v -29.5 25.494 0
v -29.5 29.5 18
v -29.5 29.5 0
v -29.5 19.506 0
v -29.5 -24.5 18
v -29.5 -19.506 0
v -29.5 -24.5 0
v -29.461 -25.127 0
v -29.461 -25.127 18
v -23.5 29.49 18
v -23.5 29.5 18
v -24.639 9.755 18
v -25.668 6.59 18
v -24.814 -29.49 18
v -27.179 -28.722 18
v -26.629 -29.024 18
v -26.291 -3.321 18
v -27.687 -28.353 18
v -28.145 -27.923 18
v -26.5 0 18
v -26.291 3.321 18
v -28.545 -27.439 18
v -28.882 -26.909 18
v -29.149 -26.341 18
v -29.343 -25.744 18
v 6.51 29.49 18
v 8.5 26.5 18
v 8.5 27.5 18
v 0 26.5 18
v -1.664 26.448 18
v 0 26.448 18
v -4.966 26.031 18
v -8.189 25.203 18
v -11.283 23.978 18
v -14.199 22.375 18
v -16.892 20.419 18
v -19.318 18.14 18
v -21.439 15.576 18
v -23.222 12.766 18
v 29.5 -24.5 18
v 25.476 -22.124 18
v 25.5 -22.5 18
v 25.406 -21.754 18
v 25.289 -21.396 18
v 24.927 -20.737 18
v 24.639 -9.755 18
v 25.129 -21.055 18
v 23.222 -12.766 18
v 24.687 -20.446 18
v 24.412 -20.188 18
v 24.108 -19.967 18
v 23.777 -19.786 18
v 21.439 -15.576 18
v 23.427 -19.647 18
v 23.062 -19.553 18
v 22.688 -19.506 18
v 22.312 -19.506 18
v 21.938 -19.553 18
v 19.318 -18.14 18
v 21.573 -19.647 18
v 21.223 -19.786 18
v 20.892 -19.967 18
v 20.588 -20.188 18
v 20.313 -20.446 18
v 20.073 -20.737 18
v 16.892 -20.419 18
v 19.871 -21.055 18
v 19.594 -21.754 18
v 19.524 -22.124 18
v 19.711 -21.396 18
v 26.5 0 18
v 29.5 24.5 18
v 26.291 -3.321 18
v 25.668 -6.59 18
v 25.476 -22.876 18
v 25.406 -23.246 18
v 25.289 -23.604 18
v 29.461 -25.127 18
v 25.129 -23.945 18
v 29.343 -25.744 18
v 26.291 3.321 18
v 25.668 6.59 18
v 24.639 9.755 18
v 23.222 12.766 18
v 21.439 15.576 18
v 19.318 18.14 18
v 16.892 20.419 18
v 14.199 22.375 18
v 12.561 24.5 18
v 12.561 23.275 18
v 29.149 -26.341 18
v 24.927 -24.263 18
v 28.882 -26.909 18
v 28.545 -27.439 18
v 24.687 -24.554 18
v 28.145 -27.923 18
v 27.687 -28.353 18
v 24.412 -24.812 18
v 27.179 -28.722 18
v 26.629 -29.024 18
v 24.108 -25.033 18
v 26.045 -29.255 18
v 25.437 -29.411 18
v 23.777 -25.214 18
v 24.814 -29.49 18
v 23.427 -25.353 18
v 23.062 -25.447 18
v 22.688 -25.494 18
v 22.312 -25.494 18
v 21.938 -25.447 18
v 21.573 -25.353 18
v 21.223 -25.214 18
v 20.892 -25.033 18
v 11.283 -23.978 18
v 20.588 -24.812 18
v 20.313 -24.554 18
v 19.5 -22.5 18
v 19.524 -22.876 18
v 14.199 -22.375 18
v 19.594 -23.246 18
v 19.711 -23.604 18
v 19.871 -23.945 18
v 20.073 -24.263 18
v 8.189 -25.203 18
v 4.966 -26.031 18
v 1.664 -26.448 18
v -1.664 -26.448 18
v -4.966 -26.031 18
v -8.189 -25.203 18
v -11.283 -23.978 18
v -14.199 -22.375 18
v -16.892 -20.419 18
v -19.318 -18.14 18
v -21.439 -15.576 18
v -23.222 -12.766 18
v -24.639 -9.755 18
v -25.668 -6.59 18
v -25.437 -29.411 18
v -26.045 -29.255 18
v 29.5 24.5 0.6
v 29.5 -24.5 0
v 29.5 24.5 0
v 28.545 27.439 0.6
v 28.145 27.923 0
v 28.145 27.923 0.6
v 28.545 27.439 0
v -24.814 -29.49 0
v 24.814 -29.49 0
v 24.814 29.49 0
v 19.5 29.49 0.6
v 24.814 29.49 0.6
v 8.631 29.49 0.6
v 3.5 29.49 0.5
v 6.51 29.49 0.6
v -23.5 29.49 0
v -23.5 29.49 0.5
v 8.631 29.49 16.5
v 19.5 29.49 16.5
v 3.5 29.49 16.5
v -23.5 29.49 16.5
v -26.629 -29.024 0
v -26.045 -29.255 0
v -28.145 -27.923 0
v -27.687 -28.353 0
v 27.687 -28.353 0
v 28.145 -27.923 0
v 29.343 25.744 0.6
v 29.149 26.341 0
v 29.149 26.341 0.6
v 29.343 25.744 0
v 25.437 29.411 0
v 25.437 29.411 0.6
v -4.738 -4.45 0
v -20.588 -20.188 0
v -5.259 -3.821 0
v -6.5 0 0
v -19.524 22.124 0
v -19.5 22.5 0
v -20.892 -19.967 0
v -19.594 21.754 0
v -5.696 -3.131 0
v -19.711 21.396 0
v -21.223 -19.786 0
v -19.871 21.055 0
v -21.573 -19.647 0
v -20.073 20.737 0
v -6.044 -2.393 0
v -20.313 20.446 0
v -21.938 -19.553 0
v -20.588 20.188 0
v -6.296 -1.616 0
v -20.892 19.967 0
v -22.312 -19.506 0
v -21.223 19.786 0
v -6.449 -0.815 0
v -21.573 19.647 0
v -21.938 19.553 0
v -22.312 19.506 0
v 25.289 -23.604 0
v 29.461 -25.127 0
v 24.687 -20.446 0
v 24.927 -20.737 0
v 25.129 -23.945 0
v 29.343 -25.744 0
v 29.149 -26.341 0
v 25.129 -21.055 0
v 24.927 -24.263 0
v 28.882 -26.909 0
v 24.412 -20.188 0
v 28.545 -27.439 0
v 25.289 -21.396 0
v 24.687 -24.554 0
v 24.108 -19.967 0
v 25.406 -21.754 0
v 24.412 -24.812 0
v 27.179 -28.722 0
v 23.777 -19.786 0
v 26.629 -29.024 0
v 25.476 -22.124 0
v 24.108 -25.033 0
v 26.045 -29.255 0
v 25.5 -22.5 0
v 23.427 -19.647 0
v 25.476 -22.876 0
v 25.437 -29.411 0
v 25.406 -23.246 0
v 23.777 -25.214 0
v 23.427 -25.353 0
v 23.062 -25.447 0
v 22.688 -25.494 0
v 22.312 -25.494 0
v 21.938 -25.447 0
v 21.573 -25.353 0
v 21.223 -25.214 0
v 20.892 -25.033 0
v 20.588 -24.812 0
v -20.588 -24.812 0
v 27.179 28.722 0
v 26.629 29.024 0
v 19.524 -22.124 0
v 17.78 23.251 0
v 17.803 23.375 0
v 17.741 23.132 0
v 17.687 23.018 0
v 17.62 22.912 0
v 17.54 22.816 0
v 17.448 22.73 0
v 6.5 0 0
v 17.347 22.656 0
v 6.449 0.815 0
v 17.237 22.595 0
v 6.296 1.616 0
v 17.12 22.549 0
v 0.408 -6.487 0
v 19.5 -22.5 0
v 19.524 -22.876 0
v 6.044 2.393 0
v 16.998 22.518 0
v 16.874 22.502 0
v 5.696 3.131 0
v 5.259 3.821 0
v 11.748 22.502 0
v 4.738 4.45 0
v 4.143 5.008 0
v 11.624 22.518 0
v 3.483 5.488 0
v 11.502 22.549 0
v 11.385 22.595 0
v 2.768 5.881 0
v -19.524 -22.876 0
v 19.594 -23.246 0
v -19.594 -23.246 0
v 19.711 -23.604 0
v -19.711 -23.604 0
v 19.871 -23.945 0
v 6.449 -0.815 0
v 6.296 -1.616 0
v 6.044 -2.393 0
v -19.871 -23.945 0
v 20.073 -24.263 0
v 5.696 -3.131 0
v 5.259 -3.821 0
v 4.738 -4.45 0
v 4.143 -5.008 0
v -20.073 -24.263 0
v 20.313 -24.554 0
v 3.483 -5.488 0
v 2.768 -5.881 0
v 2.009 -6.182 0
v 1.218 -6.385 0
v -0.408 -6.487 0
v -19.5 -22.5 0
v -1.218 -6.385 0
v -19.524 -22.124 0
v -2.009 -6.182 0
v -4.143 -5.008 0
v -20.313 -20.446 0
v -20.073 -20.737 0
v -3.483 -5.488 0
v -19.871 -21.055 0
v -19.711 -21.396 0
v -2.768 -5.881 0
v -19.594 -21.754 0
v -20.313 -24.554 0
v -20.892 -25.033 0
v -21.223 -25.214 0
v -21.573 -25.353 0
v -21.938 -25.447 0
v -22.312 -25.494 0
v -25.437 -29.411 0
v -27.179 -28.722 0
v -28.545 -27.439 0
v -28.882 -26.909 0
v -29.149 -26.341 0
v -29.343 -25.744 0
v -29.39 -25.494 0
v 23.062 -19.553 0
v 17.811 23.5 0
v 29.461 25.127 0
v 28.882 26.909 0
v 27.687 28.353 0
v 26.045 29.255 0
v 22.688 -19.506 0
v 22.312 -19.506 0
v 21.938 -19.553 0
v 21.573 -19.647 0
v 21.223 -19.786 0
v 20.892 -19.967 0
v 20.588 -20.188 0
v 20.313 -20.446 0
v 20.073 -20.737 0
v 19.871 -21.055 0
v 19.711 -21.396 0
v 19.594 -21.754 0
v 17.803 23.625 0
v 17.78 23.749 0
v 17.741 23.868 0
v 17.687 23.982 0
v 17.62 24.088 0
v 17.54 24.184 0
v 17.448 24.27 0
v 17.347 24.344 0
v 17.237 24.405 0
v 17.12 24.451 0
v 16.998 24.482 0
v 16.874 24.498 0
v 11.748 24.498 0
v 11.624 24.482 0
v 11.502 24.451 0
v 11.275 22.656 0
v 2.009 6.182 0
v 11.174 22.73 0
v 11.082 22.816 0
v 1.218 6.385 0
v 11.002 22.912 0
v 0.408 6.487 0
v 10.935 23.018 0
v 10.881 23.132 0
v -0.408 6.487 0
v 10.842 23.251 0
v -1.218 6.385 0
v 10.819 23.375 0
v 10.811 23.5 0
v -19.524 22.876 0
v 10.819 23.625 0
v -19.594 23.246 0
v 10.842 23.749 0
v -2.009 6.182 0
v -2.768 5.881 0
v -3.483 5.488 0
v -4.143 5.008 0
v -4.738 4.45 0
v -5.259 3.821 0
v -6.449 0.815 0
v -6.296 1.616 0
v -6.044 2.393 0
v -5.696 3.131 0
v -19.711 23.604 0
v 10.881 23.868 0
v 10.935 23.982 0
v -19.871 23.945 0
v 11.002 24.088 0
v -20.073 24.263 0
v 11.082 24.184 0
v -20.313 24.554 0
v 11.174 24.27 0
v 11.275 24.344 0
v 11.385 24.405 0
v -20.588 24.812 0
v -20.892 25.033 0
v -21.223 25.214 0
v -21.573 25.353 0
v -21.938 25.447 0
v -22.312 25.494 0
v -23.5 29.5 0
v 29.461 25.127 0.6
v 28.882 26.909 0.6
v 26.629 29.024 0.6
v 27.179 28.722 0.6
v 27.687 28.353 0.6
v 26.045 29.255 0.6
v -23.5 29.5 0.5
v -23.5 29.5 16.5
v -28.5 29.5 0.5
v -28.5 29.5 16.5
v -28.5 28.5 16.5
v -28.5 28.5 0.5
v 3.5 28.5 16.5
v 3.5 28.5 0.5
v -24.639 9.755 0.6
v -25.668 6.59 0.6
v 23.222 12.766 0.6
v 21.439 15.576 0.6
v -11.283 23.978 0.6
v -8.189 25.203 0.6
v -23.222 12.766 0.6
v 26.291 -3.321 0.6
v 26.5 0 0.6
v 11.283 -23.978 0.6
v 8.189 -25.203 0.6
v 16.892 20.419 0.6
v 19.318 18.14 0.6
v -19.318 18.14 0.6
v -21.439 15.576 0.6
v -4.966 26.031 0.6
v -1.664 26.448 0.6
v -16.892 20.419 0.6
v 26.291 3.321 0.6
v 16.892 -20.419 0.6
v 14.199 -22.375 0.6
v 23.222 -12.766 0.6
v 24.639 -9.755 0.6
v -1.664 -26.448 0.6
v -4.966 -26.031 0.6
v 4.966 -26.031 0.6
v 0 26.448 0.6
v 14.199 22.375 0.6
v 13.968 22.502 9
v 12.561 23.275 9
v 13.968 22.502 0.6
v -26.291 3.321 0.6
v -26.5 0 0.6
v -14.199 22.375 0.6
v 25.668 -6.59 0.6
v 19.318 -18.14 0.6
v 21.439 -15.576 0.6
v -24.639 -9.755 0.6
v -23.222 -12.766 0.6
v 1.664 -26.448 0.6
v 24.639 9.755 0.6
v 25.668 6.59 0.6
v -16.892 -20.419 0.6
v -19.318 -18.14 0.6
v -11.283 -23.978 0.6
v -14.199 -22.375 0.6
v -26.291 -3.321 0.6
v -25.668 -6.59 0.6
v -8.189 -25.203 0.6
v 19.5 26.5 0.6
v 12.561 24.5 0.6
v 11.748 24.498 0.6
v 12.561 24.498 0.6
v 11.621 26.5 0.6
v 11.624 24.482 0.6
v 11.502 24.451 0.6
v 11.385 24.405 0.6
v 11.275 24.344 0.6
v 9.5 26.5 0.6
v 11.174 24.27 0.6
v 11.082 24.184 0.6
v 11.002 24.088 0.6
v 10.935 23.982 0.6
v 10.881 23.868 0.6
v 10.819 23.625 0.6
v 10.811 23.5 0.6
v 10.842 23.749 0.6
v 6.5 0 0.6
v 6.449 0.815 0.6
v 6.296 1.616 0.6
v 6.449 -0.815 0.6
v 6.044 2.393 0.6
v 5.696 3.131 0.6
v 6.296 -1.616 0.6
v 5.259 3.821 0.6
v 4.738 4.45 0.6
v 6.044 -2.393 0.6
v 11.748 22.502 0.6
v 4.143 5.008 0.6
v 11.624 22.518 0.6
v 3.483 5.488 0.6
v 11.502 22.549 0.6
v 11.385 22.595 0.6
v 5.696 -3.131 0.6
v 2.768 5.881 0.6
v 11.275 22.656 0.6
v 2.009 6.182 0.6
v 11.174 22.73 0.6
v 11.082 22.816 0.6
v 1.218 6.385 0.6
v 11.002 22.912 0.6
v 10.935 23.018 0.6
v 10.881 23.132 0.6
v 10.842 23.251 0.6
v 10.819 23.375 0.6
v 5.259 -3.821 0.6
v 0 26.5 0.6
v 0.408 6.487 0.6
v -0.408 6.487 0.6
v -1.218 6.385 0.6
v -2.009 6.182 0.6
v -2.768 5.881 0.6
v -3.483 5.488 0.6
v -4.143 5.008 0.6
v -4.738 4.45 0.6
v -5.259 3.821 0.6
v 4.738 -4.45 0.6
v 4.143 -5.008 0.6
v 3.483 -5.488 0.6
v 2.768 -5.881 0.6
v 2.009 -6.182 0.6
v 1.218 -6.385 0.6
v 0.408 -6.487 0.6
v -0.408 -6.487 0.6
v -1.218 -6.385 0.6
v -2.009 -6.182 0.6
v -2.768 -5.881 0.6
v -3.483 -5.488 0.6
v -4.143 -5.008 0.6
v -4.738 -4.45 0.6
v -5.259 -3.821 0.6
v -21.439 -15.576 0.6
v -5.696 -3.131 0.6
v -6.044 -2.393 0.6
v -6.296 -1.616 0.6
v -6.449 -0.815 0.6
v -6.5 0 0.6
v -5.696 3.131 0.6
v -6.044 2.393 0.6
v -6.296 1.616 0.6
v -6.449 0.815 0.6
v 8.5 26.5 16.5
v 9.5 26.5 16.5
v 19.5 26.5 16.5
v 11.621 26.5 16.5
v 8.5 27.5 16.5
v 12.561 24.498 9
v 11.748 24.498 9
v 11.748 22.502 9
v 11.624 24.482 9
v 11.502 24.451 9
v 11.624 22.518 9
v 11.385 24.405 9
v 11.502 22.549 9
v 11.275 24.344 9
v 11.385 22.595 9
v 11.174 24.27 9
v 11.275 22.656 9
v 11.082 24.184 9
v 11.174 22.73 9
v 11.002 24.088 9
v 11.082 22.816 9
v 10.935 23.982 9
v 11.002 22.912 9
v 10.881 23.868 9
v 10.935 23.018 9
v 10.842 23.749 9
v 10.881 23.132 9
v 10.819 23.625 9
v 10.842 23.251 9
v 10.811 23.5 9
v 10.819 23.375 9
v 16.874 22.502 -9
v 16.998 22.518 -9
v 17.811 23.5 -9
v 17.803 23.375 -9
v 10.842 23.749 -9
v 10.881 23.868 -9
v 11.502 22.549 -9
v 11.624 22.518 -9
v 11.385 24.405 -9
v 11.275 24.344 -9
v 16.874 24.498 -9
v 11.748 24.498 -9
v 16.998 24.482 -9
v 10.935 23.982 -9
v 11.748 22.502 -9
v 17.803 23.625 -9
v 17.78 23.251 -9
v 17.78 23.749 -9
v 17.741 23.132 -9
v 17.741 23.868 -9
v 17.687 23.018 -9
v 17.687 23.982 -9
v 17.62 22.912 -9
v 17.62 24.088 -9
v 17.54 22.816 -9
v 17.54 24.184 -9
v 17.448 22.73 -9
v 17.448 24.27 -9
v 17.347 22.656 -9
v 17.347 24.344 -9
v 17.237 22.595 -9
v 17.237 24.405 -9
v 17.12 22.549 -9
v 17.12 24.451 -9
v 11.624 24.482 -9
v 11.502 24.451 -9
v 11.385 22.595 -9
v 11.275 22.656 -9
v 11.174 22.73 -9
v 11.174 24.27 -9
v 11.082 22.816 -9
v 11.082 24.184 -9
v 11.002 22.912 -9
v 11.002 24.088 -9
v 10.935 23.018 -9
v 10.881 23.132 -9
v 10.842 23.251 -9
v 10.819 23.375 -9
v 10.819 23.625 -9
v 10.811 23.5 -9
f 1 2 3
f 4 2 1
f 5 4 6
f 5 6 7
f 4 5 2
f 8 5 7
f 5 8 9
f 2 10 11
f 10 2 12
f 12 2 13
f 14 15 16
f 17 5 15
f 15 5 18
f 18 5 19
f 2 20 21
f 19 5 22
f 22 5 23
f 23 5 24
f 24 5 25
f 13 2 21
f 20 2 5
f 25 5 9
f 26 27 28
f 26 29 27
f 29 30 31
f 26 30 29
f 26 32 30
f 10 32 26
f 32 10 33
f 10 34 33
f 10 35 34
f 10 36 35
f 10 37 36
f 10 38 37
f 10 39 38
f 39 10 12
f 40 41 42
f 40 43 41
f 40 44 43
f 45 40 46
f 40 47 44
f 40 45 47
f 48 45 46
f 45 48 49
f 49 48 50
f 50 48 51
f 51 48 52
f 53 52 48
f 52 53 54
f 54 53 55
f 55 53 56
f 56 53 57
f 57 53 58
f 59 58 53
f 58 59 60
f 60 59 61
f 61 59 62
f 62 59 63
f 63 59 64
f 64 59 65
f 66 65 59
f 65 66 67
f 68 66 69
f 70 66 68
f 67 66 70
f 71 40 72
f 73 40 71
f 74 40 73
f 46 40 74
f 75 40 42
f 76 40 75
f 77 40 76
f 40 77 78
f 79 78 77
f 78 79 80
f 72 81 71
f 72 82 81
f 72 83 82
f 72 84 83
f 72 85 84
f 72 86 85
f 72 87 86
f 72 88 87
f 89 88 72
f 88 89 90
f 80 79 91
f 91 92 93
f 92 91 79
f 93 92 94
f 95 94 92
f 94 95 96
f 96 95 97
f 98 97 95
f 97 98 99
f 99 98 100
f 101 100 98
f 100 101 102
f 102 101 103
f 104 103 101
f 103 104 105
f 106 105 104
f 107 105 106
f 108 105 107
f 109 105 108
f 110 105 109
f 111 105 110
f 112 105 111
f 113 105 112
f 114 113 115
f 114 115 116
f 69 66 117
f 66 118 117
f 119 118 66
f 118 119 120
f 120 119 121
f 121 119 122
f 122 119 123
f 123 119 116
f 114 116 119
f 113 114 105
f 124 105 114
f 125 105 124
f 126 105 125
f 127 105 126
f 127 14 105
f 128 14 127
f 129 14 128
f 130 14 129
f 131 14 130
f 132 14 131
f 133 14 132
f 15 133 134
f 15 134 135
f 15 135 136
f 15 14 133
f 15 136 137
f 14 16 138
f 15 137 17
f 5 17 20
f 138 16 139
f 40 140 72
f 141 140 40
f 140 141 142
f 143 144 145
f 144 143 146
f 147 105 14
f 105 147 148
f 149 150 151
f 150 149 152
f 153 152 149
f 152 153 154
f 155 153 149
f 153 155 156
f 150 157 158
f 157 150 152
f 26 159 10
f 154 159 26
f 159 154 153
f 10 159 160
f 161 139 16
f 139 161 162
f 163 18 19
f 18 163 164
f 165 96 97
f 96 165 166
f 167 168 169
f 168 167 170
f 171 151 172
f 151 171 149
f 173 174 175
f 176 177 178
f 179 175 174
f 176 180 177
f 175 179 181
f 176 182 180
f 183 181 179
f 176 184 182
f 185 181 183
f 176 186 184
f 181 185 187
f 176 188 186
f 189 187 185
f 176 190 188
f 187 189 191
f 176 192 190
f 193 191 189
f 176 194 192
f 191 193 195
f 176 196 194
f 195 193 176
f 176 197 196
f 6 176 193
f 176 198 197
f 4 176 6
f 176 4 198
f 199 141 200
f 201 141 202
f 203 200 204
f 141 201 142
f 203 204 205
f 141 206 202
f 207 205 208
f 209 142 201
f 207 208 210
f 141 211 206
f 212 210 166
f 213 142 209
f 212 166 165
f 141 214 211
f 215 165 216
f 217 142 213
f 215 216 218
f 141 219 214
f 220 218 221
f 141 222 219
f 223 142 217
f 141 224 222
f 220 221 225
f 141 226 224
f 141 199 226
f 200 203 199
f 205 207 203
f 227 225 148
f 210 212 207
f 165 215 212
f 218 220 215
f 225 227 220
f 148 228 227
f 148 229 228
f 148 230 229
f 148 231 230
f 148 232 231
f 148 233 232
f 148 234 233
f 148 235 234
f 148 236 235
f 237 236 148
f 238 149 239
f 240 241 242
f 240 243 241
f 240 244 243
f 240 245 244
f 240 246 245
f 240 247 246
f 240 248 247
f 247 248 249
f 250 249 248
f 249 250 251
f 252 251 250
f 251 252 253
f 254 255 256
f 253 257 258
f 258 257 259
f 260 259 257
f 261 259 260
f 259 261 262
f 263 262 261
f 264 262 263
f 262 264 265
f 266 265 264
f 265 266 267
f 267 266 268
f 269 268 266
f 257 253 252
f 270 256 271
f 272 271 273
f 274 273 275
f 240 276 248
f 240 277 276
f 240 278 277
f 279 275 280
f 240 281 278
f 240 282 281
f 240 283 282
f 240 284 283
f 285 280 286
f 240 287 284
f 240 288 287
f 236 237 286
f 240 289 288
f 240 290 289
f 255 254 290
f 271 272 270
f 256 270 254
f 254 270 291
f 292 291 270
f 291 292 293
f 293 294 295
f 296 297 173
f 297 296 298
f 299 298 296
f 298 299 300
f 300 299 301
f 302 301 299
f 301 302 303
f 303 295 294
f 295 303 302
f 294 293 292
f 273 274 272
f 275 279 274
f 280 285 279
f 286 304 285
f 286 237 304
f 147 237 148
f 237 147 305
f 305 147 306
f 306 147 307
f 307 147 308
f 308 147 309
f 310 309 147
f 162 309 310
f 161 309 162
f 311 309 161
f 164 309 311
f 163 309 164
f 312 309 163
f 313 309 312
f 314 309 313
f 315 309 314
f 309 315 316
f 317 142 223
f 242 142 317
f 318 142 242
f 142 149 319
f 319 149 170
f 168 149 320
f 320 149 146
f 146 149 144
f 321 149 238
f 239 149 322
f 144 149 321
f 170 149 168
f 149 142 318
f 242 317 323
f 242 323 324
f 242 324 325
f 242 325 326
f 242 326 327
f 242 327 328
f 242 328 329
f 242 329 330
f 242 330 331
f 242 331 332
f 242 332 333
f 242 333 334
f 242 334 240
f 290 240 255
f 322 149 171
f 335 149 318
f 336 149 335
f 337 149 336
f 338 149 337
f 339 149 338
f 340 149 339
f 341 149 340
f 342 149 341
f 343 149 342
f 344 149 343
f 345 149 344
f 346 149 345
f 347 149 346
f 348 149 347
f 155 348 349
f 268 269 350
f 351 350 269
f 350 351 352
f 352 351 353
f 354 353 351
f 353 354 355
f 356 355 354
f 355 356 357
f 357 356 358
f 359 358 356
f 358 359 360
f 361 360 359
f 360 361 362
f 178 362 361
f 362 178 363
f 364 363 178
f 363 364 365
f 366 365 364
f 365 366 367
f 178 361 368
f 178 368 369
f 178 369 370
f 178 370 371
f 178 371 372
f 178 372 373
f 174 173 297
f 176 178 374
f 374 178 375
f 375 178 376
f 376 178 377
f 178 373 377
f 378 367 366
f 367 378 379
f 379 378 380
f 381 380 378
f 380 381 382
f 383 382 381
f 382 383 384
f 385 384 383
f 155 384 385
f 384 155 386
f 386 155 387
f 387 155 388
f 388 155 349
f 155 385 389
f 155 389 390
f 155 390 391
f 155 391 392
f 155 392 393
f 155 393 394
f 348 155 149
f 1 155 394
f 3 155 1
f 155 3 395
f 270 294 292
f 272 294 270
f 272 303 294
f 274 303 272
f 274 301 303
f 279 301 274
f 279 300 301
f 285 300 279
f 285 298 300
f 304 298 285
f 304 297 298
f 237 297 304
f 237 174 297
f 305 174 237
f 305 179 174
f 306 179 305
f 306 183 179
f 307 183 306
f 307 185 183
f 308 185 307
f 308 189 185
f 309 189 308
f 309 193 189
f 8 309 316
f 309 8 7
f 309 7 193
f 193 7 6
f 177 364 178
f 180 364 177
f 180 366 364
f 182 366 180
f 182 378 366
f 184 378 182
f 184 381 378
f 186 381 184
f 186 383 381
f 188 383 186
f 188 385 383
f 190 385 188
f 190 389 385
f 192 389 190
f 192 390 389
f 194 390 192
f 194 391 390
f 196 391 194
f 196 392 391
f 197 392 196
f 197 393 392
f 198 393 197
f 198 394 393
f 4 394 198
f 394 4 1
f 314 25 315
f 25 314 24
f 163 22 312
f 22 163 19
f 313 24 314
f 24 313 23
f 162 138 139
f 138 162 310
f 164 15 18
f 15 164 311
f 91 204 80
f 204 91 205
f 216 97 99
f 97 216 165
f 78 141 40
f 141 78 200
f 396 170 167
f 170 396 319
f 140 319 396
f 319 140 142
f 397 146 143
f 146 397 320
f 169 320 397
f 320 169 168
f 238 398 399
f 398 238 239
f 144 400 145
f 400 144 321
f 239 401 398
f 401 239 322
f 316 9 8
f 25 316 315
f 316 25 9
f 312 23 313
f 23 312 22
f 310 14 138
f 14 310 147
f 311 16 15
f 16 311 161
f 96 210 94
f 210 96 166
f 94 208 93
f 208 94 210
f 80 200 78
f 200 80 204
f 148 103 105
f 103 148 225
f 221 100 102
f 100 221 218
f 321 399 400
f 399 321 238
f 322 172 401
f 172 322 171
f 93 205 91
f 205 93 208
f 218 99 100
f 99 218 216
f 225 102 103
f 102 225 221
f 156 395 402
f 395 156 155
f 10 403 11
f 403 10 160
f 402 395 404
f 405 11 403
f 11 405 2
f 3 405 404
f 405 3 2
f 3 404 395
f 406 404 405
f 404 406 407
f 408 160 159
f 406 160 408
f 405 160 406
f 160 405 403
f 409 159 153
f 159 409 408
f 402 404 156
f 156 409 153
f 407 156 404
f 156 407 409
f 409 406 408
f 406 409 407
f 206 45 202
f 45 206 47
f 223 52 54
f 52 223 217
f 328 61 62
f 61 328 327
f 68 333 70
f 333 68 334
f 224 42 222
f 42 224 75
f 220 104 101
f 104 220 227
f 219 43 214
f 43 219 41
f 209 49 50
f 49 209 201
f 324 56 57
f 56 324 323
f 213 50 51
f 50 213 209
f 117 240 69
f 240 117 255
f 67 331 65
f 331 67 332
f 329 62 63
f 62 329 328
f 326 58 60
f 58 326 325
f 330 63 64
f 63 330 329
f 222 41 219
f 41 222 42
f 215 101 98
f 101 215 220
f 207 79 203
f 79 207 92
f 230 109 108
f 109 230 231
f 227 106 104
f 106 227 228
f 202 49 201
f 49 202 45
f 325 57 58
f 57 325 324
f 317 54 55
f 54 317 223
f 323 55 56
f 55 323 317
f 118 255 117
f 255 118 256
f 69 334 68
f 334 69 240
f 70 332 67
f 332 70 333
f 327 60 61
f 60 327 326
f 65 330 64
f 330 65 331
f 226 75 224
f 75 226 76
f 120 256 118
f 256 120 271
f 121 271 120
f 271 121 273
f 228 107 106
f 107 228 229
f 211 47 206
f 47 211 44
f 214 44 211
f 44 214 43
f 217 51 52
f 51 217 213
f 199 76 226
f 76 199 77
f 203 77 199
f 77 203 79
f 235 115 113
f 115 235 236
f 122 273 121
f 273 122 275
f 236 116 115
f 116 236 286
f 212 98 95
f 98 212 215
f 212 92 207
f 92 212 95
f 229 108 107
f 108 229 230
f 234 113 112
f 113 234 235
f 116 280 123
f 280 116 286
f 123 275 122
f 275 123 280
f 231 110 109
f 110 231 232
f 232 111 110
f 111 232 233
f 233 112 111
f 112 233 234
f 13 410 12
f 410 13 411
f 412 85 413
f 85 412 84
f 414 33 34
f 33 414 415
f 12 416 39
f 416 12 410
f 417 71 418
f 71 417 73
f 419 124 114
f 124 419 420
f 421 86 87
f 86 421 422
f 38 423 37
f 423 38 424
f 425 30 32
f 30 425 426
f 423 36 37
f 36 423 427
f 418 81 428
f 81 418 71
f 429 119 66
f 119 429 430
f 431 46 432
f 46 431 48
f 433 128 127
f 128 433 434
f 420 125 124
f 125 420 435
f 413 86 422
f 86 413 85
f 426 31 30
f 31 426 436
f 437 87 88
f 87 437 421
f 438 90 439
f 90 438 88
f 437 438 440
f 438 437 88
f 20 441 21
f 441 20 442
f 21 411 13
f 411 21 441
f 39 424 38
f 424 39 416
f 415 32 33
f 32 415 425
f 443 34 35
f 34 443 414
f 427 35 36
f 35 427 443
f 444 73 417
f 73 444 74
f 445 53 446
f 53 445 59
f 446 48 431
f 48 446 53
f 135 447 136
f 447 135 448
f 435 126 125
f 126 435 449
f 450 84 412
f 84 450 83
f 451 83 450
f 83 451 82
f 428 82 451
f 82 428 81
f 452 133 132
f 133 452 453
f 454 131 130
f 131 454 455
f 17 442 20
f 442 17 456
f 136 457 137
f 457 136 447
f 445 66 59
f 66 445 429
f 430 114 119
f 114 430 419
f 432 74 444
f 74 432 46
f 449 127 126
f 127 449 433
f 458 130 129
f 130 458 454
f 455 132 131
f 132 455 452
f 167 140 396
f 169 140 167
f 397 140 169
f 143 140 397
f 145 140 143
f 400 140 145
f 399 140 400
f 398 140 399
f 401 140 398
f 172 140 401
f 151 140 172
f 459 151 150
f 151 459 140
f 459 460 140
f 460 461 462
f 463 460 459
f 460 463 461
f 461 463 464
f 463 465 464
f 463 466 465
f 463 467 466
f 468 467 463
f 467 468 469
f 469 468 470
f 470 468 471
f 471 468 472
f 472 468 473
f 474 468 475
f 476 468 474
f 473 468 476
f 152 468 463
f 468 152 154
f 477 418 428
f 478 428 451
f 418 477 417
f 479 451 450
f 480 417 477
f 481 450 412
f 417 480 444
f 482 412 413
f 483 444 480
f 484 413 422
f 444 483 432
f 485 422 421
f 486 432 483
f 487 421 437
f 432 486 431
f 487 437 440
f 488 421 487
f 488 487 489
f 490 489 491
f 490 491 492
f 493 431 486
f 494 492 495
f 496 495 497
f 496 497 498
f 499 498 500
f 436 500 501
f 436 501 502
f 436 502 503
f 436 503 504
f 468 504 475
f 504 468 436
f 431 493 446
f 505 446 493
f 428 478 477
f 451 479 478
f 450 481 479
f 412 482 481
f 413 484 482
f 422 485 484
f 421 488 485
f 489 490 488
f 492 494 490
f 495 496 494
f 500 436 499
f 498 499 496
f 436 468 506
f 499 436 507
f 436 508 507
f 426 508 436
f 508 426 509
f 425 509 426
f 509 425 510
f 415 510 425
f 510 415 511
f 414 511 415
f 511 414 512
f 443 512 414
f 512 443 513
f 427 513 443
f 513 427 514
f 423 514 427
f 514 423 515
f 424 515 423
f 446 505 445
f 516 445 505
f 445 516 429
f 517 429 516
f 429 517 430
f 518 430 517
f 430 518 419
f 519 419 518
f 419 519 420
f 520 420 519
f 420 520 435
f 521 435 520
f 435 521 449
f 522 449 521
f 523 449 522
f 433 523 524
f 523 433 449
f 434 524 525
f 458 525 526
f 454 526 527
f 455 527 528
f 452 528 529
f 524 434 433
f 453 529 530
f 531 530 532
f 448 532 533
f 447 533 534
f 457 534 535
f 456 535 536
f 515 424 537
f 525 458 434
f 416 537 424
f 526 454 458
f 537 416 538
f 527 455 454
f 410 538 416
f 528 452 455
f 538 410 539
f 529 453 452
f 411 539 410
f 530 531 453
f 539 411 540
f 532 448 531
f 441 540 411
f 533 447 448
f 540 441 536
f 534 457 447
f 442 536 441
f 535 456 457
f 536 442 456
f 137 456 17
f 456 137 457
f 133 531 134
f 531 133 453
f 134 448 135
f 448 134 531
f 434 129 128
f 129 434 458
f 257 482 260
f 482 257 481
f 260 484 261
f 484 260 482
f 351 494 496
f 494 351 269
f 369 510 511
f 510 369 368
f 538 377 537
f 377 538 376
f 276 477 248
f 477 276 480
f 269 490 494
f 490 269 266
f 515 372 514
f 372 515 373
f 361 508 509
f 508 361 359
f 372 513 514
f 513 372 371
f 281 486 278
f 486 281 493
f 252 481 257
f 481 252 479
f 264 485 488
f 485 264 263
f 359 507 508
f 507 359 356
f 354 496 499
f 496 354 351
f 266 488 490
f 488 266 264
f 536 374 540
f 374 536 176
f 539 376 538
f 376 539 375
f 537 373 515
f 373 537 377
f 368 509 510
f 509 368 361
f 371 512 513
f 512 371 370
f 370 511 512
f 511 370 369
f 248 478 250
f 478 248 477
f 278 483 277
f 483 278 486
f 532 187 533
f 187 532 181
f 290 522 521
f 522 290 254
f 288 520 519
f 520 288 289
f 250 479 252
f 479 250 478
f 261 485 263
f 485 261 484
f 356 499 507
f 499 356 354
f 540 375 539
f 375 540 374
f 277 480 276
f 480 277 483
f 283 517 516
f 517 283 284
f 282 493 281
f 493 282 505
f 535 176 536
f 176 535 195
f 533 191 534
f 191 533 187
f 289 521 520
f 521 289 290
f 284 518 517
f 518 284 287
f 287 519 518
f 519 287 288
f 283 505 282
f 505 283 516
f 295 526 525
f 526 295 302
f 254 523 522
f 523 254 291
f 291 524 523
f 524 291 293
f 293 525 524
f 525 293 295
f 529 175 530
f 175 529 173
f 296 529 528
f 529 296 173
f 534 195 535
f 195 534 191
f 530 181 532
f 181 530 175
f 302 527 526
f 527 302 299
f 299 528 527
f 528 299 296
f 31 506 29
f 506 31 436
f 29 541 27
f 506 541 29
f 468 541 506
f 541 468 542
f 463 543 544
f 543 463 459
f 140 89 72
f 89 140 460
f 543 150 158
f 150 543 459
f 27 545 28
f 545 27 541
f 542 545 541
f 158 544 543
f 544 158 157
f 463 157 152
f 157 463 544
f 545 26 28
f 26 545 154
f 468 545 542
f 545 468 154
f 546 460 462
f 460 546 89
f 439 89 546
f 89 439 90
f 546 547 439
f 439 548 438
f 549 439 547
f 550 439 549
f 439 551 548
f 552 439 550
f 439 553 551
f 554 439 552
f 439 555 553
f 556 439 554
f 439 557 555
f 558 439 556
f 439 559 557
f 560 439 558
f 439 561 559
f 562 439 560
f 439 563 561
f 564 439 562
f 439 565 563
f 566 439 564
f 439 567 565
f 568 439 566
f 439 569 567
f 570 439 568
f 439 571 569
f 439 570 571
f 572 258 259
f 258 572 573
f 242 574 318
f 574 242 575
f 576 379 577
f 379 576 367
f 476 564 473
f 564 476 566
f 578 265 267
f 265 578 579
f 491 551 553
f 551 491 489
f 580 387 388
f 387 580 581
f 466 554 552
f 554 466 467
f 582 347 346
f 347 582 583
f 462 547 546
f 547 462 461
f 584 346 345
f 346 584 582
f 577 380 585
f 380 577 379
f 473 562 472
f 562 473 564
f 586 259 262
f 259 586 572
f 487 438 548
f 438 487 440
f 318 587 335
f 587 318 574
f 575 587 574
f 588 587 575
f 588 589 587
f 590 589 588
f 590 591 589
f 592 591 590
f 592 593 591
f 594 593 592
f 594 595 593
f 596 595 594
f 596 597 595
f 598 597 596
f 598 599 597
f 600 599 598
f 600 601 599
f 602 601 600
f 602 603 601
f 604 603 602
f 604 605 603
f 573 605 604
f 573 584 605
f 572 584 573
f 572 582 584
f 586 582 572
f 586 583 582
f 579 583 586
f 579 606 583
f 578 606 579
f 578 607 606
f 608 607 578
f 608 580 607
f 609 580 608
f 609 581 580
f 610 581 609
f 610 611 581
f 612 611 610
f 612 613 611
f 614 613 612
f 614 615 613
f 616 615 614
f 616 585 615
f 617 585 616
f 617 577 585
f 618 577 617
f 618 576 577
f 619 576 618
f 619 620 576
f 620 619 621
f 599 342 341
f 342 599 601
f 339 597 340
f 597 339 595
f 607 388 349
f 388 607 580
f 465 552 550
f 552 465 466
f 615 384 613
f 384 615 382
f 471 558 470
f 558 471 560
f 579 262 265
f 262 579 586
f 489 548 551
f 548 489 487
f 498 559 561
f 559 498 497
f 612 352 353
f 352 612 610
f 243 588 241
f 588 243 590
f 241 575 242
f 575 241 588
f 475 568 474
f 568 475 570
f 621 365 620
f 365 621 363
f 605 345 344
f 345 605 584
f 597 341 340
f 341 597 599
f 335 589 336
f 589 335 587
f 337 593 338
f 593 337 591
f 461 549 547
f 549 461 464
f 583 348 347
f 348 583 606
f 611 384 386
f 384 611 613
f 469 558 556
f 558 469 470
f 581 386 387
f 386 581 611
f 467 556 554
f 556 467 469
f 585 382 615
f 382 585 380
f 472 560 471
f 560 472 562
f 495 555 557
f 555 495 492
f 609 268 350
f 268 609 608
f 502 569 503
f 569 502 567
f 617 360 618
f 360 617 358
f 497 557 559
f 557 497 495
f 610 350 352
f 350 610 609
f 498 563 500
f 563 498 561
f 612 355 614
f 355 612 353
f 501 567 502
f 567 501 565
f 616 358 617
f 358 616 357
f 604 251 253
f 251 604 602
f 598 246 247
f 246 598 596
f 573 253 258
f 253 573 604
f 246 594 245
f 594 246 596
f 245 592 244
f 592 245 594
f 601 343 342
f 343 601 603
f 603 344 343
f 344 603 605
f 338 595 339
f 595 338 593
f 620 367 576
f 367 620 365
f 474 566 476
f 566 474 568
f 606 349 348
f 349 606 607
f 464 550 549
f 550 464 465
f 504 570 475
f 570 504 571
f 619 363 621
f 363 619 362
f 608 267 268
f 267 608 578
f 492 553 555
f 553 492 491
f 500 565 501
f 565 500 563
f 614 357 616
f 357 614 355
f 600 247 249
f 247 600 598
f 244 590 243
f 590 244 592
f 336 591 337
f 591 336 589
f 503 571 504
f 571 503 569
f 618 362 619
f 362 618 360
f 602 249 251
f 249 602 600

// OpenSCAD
$fn = 50;


union() {
	difference() {
		union() {
			hull() {
				translate(v = [-24.5000000000, 24.5000000000, 0]) {
					cylinder(h = 18, r = 5);
				}
				translate(v = [24.5000000000, 24.5000000000, 0]) {
					cylinder(h = 18, r = 5);
				}
				translate(v = [-24.5000000000, -24.5000000000, 0]) {
					cylinder(h = 18, r = 5);
				}
				translate(v = [24.5000000000, -24.5000000000, 0]) {
					cylinder(h = 18, r = 5);
				}
			}
			translate(v = [-29.5000000000, 23.5000000000, 0]) {
				cube(size = [6, 6, 18]);
			}
		}
		union() {
			translate(v = [-30.0000000000, -22.5000000000, -250.0000000000]) {
				rotate(a = [0, 0, 0]) {
					difference() {
						union() {
							hull() {
								translate(v = [7.5000000000, 0, 0]) {
									cylinder(h = 250, r = 3.0000000000, r1 = 3.0000000000, r2 = 3.0000000000);
								}
								translate(v = [-7.5000000000, 0, 0]) {
									cylinder(h = 250, r = 3.0000000000, r1 = 3.0000000000, r2 = 3.0000000000);
								}
							}
						}
						union();
					}
				}
			}
			translate(v = [-30.0000000000, 22.5000000000, -250.0000000000]) {
				rotate(a = [0, 0, 0]) {
					difference() {
						union() {
							hull() {
								translate(v = [7.5000000000, 0, 0]) {
									cylinder(h = 250, r = 3.0000000000, r1 = 3.0000000000, r2 = 3.0000000000);
								}
								translate(v = [-7.5000000000, 0, 0]) {
									cylinder(h = 250, r = 3.0000000000, r1 = 3.0000000000, r2 = 3.0000000000);
								}
							}
						}
						union();
					}
				}
			}
			translate(v = [-28.5000000000, 28.5000000000, 0.5000000000]) {
				cube(size = [32, 1, 16]);
			}
			translate(v = [22.5000000000, -22.5000000000, 0]) {
				cylinder(h = 100, r = 3.0000000000);
			}
			translate(v = [0, 0, 0.6000000000]) {
				cylinder(h = 20.4000000000, r = 26.5000000000);
			}
			translate(v = [0, 0, -9.0000000000]) {
				cylinder(h = 18, r = 6.5000000000);
			}
			translate(v = [0.0000000000, 24.5000000000, 0.6000000000]) {
				cube(size = [29.5000000000, 2, 20.4000000000]);
			}
			translate(v = [19.5000000000, 24.5000000000, 0.6000000000]) {
				cube(size = [10, 5, 20.4000000000]);
			}
			translate(v = [8.5000000000, 24.5000000000, 16.5000000000]) {
				cube(size = [21, 5, 1.5000000000]);
			}
			translate(v = [5.7500000000, 30.2500000000, 0.6000000000]) {
				rotate(a = [0, 0, -45]) {
					cube(size = [7.5000000000, 1.5000000000, 20.4000000000]);
				}
			}
			translate(v = [5.0610000000, 22.5000000000, 0.6000000000]) {
				cube(size = [7.5000000000, 2, 17.4000000000]);
			}
		}
	}
	union() {
		translate(v = [14.3110000000, 23.5000000000, -9.0000000000]) {
			rotate(a = [0, 0, 0]) {
				difference() {
					union() {
						#hull() {
							#translate(v = [2.5000000000, 0, 0]) {
								cylinder(h = 18, r = 1.0000000000, r1 = 1.0000000000, r2 = 1.0000000000);
							}
							#translate(v = [-2.5000000000, 0, 0]) {
								cylinder(h = 18, r = 1.0000000000, r1 = 1.0000000000, r2 = 1.0000000000);
							}
						}
					}
					union();
				}
			}
		}
	}
}
